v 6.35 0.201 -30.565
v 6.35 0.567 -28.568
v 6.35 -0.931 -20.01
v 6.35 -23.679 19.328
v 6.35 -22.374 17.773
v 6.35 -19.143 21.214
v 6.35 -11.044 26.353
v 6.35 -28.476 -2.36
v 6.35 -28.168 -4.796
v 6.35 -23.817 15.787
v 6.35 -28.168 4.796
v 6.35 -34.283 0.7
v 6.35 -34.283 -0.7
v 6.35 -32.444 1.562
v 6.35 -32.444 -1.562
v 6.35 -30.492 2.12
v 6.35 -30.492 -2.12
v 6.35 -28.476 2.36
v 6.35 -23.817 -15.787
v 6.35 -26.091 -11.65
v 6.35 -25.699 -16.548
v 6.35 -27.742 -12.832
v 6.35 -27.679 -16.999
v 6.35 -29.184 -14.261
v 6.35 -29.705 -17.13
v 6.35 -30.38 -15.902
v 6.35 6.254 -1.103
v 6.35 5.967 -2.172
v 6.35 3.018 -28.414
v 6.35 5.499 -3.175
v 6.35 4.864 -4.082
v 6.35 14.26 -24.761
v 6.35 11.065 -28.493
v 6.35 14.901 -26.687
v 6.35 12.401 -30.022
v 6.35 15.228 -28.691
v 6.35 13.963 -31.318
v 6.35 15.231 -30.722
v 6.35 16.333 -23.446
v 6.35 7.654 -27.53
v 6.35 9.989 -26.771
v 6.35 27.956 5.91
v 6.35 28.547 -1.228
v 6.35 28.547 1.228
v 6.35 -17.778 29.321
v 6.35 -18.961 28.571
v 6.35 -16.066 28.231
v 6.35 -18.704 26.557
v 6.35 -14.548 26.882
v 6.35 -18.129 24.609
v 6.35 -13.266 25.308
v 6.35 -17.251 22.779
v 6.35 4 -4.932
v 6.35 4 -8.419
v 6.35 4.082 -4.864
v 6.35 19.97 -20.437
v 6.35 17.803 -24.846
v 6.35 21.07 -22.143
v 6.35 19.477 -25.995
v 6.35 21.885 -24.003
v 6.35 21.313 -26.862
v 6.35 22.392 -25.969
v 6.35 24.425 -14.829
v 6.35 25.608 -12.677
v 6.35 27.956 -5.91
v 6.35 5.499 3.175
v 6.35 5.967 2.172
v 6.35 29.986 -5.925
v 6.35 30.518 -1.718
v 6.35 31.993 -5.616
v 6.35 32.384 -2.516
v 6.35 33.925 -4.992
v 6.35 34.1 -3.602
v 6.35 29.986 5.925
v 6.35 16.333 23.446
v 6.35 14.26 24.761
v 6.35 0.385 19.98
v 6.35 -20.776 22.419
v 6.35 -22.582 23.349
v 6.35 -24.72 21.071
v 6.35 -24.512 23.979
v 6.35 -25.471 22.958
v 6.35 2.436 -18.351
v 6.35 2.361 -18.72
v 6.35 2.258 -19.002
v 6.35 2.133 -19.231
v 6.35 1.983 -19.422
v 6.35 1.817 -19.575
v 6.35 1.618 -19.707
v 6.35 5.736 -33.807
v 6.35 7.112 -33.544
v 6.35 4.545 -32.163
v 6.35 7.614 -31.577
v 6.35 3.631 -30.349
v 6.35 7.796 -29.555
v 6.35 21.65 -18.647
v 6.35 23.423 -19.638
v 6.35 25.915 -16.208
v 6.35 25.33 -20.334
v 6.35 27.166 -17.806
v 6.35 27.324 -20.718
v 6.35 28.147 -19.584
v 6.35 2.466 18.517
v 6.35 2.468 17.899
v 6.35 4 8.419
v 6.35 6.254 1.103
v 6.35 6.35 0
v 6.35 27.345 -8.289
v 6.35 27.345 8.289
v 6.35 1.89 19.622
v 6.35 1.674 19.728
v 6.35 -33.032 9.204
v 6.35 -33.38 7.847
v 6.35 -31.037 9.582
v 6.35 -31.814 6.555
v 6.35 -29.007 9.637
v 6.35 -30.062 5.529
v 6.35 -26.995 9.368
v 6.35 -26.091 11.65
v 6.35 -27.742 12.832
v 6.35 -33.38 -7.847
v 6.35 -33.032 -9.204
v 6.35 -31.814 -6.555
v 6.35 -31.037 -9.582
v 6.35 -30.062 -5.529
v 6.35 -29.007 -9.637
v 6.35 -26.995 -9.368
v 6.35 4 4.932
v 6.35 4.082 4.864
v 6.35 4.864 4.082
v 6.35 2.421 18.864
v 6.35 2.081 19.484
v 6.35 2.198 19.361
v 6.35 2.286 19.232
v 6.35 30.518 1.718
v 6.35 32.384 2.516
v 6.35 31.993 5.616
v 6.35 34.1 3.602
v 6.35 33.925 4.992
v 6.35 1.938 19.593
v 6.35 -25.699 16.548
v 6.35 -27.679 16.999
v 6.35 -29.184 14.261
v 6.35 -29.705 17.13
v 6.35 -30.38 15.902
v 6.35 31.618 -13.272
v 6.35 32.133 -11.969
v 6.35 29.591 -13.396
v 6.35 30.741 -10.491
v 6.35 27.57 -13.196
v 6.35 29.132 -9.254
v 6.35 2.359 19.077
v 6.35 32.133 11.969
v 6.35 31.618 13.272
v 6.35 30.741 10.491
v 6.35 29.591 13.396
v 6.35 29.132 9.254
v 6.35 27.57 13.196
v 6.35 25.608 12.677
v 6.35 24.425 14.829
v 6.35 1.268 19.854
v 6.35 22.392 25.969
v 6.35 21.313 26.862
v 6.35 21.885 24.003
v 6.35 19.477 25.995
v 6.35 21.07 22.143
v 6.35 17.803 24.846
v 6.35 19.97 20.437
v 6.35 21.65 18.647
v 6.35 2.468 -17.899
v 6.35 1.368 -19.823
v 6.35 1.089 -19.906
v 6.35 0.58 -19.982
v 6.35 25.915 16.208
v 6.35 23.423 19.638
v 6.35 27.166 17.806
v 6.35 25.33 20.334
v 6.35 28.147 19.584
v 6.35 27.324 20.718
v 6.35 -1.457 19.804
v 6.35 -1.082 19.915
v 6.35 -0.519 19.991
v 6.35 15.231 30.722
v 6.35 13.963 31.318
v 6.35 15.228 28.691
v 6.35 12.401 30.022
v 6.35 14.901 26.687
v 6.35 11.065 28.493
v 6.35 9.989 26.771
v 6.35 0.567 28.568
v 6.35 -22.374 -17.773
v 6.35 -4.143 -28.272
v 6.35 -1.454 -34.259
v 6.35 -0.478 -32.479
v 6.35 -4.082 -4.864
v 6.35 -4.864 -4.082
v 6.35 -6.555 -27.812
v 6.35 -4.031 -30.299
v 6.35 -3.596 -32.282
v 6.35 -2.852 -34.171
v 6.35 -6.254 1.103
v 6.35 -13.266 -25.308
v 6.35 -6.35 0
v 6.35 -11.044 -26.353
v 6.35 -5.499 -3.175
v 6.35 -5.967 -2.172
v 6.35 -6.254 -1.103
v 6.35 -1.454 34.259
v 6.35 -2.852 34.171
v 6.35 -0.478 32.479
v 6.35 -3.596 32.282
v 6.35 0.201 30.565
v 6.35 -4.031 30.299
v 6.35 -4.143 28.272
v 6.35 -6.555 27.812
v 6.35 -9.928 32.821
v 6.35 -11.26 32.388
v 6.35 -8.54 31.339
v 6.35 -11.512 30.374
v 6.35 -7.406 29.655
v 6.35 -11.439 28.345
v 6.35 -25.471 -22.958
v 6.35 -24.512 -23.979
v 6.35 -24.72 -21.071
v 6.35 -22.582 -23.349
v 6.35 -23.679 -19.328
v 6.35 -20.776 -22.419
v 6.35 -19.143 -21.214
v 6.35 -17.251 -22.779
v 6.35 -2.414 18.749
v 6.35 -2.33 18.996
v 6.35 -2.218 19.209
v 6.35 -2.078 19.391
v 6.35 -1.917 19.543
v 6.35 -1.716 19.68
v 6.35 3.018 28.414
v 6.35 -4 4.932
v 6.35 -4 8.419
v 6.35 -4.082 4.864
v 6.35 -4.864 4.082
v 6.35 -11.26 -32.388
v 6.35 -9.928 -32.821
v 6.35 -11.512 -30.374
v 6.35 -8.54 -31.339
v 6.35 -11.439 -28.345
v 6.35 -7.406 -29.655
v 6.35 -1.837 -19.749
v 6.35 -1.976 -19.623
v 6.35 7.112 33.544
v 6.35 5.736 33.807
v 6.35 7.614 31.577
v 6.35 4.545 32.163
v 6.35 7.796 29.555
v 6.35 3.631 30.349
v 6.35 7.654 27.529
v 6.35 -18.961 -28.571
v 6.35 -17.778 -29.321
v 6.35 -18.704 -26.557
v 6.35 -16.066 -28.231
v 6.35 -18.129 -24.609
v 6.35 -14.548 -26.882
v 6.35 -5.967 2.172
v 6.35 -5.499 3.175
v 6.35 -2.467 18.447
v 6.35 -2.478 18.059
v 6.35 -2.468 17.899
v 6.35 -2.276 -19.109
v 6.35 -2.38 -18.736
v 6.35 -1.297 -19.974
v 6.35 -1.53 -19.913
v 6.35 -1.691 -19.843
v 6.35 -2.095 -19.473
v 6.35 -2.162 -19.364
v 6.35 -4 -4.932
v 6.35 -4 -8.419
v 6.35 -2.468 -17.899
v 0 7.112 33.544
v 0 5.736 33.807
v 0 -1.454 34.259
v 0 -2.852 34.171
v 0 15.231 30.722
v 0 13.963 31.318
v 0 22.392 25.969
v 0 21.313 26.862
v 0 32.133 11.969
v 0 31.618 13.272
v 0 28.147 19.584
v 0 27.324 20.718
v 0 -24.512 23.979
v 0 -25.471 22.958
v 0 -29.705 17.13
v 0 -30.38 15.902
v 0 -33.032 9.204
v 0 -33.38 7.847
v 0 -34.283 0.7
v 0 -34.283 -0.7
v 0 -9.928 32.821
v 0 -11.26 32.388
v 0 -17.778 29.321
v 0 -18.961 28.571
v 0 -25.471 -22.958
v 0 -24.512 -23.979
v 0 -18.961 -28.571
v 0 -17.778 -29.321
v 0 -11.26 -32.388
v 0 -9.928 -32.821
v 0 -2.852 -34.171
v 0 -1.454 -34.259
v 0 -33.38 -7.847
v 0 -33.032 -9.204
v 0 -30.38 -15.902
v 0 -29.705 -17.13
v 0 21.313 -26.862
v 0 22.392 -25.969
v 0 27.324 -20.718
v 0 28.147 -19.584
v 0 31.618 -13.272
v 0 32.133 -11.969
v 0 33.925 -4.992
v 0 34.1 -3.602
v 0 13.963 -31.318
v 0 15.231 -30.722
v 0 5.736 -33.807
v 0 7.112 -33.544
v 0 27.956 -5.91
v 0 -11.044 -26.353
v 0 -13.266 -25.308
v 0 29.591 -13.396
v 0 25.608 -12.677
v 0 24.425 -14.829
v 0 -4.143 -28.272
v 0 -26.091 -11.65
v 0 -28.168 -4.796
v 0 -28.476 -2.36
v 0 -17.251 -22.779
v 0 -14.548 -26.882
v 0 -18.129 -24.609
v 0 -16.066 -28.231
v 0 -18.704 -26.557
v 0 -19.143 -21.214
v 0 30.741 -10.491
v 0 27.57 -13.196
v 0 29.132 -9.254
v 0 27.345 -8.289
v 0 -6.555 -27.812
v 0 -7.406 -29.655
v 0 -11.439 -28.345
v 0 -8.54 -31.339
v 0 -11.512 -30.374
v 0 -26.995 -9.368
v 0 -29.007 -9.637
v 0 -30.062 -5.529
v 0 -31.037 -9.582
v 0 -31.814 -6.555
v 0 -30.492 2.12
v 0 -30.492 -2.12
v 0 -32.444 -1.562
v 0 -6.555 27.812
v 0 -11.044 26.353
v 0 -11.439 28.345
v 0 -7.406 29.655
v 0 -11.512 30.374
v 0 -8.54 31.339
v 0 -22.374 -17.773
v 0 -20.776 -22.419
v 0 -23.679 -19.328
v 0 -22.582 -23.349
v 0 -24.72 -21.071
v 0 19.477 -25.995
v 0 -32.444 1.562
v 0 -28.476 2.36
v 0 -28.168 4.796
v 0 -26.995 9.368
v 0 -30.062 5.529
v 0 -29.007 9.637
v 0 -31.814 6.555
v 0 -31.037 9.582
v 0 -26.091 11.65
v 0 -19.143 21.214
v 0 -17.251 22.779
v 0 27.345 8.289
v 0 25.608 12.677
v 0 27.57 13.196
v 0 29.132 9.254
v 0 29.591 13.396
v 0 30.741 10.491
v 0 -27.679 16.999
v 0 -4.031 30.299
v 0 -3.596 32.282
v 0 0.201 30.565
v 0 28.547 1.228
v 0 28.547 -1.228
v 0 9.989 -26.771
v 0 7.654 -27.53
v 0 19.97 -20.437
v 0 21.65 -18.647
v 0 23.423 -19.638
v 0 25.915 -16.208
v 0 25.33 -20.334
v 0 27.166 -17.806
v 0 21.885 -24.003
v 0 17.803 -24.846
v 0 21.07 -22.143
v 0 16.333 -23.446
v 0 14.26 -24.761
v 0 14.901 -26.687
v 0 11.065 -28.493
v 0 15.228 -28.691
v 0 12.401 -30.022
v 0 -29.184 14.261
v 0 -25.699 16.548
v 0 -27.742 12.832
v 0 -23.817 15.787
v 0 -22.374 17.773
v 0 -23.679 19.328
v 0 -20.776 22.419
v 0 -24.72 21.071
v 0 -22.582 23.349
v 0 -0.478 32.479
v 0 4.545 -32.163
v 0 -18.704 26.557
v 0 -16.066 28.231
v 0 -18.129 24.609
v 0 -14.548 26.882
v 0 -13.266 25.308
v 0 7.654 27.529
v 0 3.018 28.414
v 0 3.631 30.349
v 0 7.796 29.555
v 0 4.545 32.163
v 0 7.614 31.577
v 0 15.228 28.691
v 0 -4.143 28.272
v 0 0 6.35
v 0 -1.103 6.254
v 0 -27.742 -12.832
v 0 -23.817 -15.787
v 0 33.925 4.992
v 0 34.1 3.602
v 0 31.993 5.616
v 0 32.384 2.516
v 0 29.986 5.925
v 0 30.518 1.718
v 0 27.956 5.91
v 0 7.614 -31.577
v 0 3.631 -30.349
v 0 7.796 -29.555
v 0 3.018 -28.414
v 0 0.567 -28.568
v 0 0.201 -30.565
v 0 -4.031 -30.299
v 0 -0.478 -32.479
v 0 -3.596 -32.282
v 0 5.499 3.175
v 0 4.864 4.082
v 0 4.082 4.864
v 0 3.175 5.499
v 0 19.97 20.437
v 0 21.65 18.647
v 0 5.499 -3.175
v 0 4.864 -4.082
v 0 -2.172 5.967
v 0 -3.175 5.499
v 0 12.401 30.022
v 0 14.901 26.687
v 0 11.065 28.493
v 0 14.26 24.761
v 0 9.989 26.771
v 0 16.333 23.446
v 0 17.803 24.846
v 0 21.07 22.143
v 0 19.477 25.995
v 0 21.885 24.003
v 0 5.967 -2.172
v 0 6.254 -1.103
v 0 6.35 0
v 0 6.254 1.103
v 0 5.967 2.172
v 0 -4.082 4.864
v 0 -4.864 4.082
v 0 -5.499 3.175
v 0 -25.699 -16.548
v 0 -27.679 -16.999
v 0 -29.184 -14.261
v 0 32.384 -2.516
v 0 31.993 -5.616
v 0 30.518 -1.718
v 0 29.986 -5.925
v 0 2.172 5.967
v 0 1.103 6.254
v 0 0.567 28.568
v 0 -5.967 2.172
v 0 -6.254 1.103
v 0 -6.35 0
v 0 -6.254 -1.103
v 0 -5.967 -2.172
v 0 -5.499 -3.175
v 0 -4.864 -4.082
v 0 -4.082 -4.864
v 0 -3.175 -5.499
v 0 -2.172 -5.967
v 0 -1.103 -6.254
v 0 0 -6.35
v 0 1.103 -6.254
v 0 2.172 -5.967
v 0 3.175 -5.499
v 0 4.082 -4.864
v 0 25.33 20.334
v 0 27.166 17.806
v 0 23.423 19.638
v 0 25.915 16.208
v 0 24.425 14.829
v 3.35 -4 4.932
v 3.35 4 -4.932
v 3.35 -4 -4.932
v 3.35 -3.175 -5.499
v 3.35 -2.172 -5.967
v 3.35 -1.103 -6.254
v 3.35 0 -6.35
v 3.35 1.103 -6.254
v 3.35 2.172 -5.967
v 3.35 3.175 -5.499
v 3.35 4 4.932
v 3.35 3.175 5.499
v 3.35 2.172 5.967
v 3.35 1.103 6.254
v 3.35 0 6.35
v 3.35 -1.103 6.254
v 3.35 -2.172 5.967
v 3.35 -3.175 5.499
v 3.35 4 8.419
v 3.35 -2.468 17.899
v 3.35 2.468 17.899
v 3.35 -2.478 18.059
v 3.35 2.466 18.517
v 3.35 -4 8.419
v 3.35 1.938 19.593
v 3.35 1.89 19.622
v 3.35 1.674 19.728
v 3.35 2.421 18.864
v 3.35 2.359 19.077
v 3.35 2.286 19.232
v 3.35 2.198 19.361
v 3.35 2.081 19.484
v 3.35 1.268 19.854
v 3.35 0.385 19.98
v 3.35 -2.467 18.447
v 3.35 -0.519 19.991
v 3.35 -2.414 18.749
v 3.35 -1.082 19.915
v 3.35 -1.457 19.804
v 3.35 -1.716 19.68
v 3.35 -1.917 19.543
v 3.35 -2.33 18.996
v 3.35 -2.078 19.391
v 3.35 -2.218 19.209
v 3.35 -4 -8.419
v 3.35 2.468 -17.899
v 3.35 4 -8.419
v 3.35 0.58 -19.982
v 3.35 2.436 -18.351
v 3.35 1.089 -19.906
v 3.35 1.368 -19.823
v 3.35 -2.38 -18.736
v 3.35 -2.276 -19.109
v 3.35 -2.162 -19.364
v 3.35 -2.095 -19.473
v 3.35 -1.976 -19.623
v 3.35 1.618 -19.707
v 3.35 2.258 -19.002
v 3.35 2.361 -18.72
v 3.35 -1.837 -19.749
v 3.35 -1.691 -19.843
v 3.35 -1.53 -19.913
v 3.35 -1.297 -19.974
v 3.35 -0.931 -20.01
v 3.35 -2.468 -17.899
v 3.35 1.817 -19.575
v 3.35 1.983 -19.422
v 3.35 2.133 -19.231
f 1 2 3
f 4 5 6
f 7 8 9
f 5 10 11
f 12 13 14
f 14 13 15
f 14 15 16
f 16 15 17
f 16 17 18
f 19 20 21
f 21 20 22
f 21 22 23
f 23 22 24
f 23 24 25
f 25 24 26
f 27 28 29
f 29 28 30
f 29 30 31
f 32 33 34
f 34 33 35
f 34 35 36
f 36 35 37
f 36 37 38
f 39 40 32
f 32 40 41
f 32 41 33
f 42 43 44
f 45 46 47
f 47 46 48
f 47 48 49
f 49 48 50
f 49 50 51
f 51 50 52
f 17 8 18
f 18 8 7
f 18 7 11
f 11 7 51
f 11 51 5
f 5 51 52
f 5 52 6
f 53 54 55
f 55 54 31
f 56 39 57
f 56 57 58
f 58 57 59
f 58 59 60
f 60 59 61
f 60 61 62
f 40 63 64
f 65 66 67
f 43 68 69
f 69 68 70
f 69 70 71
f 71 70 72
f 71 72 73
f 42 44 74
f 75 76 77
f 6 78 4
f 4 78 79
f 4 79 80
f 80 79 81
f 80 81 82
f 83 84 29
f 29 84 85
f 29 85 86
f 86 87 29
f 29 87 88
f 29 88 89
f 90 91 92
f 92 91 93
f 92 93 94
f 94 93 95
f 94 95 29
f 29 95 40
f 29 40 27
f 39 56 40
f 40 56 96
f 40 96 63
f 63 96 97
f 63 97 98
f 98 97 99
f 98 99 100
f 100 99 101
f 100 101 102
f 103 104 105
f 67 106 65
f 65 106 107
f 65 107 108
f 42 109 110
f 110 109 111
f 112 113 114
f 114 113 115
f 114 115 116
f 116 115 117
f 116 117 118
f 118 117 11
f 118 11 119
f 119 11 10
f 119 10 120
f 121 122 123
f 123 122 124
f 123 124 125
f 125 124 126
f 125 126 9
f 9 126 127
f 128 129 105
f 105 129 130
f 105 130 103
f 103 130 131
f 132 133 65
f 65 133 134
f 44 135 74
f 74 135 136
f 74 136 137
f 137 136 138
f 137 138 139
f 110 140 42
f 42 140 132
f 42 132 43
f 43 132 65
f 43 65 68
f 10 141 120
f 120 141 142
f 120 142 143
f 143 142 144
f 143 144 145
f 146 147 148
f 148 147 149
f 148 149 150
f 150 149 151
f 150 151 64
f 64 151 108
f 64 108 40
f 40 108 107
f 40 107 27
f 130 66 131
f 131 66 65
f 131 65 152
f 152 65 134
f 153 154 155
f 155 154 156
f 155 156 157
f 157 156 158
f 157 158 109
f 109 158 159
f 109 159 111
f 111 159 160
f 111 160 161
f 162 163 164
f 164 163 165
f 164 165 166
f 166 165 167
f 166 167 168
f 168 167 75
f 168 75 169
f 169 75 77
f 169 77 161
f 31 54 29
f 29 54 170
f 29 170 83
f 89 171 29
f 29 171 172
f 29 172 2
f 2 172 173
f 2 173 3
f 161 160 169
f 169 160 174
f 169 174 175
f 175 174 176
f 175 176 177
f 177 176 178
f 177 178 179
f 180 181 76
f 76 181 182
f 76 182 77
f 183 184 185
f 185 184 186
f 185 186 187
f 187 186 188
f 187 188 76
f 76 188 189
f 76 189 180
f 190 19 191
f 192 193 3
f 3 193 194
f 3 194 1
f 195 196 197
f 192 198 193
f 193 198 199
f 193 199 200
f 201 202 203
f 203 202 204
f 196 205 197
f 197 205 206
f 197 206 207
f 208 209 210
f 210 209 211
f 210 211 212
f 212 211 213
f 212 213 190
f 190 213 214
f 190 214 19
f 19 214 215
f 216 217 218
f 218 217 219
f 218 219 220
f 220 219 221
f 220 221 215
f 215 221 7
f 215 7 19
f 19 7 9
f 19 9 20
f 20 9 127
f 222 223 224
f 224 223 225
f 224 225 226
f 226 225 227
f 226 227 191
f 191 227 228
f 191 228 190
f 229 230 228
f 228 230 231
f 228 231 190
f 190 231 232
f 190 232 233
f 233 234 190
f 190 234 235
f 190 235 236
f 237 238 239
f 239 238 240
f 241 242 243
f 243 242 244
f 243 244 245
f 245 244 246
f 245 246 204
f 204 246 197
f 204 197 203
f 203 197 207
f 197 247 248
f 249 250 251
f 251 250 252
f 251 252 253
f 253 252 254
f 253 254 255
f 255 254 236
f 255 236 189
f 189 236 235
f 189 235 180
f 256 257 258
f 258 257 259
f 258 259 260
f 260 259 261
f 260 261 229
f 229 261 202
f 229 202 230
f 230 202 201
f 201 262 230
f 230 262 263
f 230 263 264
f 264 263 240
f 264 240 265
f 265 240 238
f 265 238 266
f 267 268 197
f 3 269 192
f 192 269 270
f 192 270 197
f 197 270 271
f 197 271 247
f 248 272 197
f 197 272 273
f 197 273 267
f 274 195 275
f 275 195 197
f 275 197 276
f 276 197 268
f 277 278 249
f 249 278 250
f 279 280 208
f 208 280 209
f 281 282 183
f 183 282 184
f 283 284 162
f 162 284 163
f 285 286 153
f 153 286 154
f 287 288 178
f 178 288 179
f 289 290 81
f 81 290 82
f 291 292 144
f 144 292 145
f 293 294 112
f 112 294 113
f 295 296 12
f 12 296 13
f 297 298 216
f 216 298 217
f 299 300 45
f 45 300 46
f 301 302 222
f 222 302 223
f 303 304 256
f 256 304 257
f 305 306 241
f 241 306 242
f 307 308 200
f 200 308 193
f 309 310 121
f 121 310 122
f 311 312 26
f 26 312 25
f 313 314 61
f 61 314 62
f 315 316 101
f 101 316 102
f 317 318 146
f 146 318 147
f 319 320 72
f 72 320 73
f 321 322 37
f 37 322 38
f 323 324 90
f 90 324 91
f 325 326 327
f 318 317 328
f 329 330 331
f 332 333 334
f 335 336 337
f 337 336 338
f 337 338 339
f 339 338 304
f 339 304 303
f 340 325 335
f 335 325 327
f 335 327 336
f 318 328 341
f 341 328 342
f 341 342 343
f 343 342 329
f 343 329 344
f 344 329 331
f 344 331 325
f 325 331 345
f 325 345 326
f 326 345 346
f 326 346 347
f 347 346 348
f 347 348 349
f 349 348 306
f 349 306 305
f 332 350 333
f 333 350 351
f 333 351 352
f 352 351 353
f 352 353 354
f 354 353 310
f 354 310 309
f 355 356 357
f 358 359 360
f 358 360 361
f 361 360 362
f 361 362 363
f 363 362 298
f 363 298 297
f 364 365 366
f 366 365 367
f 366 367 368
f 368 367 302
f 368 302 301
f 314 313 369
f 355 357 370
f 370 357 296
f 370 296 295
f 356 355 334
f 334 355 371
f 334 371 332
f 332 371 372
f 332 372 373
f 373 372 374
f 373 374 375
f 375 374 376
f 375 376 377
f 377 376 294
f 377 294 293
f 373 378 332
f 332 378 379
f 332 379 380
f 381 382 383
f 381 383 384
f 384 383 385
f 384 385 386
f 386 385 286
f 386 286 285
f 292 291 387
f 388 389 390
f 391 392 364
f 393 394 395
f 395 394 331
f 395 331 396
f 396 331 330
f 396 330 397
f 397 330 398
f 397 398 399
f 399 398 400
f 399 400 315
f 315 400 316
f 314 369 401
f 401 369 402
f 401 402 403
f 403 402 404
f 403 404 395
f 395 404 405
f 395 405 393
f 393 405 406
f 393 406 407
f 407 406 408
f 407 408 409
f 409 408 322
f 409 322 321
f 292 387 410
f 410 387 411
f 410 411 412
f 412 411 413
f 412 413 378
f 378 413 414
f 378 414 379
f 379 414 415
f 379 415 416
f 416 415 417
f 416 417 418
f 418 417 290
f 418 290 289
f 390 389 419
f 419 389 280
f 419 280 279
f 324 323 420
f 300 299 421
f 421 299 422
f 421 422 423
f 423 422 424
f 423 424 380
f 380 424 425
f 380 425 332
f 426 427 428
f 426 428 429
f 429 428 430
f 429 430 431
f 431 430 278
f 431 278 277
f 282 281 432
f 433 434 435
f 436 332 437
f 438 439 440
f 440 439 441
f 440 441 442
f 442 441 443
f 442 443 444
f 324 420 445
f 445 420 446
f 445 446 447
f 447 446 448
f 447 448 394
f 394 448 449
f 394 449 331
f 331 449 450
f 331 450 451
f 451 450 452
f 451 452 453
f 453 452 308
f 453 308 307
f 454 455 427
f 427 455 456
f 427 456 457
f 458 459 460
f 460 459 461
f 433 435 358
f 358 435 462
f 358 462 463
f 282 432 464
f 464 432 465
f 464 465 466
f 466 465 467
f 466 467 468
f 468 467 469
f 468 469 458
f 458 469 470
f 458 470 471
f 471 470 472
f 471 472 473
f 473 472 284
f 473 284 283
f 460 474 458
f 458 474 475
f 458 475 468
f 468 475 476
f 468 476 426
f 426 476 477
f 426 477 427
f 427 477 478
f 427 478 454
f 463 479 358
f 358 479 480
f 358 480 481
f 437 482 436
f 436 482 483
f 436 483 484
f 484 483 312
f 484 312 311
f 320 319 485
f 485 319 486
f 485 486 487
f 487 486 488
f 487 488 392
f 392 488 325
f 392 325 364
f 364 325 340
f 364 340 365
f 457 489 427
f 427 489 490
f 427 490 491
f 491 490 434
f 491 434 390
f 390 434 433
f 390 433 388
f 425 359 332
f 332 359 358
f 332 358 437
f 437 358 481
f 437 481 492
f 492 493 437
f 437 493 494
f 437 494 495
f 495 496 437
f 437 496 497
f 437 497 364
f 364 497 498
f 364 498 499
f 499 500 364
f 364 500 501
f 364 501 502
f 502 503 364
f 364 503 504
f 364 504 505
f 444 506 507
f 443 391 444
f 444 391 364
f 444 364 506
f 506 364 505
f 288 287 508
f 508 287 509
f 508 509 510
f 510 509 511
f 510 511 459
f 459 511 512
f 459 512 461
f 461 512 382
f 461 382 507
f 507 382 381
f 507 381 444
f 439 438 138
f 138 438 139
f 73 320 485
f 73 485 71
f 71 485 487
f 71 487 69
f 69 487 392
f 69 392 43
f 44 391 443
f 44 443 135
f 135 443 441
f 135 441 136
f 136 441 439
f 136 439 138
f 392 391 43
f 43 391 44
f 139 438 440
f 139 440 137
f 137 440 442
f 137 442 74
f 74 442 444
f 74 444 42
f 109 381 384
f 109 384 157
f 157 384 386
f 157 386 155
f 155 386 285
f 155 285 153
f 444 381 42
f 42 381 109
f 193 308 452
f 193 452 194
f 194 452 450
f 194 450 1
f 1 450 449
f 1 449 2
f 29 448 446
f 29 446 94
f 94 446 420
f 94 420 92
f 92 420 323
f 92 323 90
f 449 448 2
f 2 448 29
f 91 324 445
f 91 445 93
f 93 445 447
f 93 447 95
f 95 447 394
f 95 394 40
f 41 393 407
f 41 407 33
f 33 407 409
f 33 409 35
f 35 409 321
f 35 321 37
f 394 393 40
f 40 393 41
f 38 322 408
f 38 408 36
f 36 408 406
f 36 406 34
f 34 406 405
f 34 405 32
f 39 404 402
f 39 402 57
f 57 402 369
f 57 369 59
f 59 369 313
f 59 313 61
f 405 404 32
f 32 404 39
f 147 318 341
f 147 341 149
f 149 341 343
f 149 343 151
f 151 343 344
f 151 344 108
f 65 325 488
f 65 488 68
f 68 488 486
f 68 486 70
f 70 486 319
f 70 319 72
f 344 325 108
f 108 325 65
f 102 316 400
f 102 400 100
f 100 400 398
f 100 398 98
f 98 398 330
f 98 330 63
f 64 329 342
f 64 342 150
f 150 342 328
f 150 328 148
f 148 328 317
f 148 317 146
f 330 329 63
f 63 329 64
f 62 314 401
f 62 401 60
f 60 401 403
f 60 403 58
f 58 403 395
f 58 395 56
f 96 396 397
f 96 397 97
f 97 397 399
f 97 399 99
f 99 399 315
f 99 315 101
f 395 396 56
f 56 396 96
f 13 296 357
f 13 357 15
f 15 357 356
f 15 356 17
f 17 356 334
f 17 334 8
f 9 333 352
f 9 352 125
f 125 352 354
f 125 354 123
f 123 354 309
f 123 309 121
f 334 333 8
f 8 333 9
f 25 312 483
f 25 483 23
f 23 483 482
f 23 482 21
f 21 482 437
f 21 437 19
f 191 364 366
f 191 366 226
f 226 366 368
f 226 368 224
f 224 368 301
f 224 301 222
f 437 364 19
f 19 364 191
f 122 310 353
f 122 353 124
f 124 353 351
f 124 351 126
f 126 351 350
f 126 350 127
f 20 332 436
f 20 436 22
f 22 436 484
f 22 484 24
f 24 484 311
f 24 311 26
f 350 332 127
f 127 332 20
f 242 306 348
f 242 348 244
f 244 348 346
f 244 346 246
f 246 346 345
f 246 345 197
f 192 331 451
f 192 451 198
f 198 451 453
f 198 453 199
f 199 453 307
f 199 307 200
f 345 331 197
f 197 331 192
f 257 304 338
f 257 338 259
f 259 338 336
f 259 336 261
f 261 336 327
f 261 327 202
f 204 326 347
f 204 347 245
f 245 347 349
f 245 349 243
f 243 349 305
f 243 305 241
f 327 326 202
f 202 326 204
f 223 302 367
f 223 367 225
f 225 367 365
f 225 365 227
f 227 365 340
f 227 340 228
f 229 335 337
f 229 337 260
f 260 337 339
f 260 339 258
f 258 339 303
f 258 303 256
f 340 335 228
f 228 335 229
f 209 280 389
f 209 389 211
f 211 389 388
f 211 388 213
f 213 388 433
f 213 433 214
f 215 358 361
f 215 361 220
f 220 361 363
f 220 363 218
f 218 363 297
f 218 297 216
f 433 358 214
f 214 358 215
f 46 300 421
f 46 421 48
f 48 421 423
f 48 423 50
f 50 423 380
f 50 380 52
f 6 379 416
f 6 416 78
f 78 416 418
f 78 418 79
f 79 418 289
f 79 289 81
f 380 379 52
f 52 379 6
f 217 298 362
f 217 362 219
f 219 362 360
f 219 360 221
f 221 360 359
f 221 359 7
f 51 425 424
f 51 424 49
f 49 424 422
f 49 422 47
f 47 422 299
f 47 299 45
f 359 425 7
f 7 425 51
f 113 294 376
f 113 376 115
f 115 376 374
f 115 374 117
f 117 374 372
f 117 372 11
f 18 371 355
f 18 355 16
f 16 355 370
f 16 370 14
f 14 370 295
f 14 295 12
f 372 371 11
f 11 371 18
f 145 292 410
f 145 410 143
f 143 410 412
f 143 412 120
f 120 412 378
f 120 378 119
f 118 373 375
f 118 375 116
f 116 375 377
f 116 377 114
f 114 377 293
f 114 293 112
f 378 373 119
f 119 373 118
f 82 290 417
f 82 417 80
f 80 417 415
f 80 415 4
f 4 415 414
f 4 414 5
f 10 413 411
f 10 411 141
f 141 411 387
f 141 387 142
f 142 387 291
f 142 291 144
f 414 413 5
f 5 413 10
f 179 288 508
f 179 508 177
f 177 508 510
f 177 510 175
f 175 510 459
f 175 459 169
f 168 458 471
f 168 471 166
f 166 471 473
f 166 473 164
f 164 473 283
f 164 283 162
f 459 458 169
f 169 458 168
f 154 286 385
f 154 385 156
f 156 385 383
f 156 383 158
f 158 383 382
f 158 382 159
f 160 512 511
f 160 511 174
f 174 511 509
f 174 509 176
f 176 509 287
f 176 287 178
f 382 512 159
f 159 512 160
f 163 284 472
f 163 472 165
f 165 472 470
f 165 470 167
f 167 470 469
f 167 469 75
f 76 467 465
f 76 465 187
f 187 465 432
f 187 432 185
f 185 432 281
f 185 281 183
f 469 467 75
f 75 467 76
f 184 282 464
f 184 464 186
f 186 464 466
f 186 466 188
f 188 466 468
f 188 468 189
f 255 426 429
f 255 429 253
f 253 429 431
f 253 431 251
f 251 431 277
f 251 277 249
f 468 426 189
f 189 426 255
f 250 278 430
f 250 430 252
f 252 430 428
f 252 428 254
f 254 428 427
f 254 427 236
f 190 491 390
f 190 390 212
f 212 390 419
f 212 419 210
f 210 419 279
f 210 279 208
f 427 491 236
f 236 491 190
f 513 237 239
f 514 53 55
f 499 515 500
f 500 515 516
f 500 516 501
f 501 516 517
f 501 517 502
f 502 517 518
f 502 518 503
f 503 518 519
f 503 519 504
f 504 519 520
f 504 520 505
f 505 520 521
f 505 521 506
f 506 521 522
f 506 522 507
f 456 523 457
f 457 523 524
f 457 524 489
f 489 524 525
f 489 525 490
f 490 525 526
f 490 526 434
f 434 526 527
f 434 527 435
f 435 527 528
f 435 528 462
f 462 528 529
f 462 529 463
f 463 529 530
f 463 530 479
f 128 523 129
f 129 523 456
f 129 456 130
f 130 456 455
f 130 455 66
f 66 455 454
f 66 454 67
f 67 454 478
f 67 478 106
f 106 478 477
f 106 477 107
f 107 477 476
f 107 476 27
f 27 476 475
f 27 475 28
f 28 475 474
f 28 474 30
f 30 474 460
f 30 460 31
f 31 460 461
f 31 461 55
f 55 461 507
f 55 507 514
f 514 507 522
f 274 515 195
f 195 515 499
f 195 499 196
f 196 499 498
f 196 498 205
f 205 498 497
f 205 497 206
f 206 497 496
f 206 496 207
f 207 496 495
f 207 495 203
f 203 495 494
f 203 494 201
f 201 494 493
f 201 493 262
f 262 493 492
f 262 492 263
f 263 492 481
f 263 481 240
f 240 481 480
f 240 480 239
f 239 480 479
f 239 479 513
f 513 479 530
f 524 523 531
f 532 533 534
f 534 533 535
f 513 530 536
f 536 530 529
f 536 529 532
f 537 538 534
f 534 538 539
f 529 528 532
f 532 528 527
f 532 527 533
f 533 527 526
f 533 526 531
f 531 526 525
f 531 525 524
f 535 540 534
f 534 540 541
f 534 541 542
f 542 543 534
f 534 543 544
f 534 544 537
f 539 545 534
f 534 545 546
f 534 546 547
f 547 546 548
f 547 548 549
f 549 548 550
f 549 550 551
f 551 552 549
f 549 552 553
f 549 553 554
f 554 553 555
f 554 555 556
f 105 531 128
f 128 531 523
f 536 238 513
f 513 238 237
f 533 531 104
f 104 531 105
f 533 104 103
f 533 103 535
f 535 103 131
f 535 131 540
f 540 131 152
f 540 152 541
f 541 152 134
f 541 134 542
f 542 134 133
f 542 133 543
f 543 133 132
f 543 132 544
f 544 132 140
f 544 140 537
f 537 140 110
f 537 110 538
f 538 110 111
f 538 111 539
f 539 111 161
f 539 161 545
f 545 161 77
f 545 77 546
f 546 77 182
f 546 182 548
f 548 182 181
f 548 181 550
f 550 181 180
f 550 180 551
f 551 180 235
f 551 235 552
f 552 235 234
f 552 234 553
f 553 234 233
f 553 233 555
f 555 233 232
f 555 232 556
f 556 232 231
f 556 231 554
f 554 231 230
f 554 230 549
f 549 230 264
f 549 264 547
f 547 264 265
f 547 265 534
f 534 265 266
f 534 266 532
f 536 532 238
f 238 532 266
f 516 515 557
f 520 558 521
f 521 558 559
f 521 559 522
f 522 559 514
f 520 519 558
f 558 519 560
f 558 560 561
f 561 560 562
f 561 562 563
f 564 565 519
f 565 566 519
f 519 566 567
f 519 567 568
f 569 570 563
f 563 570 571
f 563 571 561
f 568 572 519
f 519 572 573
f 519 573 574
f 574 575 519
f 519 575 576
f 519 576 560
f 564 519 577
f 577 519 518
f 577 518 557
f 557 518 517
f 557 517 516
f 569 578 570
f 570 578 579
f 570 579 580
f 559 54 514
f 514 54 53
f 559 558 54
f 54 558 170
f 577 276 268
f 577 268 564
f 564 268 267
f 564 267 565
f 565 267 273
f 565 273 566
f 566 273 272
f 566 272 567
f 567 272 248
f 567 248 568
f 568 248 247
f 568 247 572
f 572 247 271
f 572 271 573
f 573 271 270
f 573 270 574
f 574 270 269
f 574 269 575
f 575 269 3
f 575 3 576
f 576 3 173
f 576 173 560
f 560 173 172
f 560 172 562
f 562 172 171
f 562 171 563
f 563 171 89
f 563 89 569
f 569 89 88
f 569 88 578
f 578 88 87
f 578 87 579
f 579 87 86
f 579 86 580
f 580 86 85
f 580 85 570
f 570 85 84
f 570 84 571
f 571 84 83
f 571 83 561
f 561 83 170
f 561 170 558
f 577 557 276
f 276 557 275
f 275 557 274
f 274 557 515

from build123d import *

# Parameters (mm, degrees)
BASPROSKE_W        = 6.35
BASPROSKE_H        = 34.29
TOOTHCUT_DEPTH     = 49.907368565
TEETHCUTS_COUNT    = 25
TEETHCUTS_ANGLE    = 345.6
BORSKE_R           = 6.35
BORE_DEPTH         = 50.8000508
CUT_EXTRUDE1_DEPTH = 3


with BuildPart() as part:
    # BasProSke → Base-Revolve (revolve)
    with BuildSketch(Plane(origin=(0, 0, 0), x_dir=(1, 0, 0), z_dir=(0, 1, 0)), mode=Mode.PRIVATE) as base_revolve_sk:
        with Locations((3.175, 17.145)):
            Rectangle(BASPROSKE_W, BASPROSKE_H)
    revolve(base_revolve_sk.sketch.rotate(Axis((-10, 0, 0), (1, 0, 0)), 180), axis=Axis((-10, 0, 0), (1, 0, 0)))

    # TooCutSke → ToothCut (cut, through all)
    with BuildSketch(Plane(origin=(0, 0, 0), x_dir=(0, 0, -1), z_dir=(1, 0, 0))):
        with BuildLine():
            ThreePointArc((1.227638411, 28.547345762), (0, 28.57373), (-1.227638411, 28.547345762))
            ThreePointArc((-1.227638411, 28.547345762), (-2.085725605, 31.480614743), (-3.619717638, 34.123955242))
            ThreePointArc((-3.619717638, 34.123955242), (0, 34.3154), (3.619717638, 34.123955242))
            ThreePointArc((3.619717638, 34.123955242), (2.085725605, 31.480614743), (1.227638411, 28.547345762))
        make_face()
    toothcut = extrude(amount=TOOTHCUT_DEPTH, mode=Mode.SUBTRACT)

    # TeethCuts: ToothCut ×25 about axis
    teethcuts_axis = Axis((-10, 0, 0), (1, 0, 0))
    for i in range(1, TEETHCUTS_COUNT):
        add(toothcut.rotate(teethcuts_axis, i * TEETHCUTS_ANGLE / (TEETHCUTS_COUNT - 1)), mode=Mode.SUBTRACT)

    # BorSke → Bore (cut, symmetric)
    with BuildSketch(Plane(origin=(0, 0, 0), x_dir=(0, 0, -1), z_dir=(1, 0, 0))):
        with Locations(Location((0, 0, 0), (0, 0, 180))):
            Circle(BORSKE_R)
    extrude(amount=BORE_DEPTH, both=True, mode=Mode.SUBTRACT)

    # Sketch1 → Cut-Extrude1 (cut)
    with BuildSketch(Plane(origin=(6.35, 0, 0), x_dir=(0, 0, -1), z_dir=(1, 0, 0))):
        with BuildLine():
            Line((17.898853189, -2.467978147), (8.419183588, -4))
            Line((8.419183588, -4), (3.919183588, -4))
            add(Edge.make_bspline(
                [(3.919183588, -4), (0, -7.2), (-3.919183588, -4)],
                knots=[0, 0, 0, 1, 1, 1], degree=2))
            Line((-3.919183588, -4), (-8.419183588, -4))
            Line((-8.419183588, -4), (-17.898853189, -2.467978147))
            add(Edge.make_bspline(
                [(-17.898853189, 2.467978147), (-19.149615056, 2.509332033), (-19.873380367, 2.372025905), (-20.078667352, -1.208741201), (-19.543433152, -2.606773936), (-17.898853189, -2.467978147)],
                knots=[0, 0, 0, 0, 0.571712182, 0.671712182, 1, 1, 1, 1], degree=3))
            Line((-17.898853189, 2.467978147), (-8.419183588, 4))
            Line((-8.419183588, 4), (-3.919183588, 4))
            add(Edge.make_bspline(
                [(3.919183588, 4), (0, 7.2), (-3.919183588, 4)],
                knots=[0, 0, 0, 1, 1, 1], degree=2))
            Line((3.919183588, 4), (8.419183588, 4))
            Line((8.419183588, 4), (17.898853189, 2.467978147))
            add(Edge.make_bspline(
                [(17.898853189, 2.467978147), (19.569523565, 2.444629682), (20.025416522, 1.325706455), (19.979573656, -1.037983093), (20.186538624, -2.400122897), (17.898853189, -2.467978147)],
                knots=[0, 0, 0, 0, 0.495063361, 0.595063361, 1, 1, 1, 1], degree=3))
        make_face()
    extrude(amount=-CUT_EXTRUDE1_DEPTH, mode=Mode.SUBTRACT)


solid = part.part
